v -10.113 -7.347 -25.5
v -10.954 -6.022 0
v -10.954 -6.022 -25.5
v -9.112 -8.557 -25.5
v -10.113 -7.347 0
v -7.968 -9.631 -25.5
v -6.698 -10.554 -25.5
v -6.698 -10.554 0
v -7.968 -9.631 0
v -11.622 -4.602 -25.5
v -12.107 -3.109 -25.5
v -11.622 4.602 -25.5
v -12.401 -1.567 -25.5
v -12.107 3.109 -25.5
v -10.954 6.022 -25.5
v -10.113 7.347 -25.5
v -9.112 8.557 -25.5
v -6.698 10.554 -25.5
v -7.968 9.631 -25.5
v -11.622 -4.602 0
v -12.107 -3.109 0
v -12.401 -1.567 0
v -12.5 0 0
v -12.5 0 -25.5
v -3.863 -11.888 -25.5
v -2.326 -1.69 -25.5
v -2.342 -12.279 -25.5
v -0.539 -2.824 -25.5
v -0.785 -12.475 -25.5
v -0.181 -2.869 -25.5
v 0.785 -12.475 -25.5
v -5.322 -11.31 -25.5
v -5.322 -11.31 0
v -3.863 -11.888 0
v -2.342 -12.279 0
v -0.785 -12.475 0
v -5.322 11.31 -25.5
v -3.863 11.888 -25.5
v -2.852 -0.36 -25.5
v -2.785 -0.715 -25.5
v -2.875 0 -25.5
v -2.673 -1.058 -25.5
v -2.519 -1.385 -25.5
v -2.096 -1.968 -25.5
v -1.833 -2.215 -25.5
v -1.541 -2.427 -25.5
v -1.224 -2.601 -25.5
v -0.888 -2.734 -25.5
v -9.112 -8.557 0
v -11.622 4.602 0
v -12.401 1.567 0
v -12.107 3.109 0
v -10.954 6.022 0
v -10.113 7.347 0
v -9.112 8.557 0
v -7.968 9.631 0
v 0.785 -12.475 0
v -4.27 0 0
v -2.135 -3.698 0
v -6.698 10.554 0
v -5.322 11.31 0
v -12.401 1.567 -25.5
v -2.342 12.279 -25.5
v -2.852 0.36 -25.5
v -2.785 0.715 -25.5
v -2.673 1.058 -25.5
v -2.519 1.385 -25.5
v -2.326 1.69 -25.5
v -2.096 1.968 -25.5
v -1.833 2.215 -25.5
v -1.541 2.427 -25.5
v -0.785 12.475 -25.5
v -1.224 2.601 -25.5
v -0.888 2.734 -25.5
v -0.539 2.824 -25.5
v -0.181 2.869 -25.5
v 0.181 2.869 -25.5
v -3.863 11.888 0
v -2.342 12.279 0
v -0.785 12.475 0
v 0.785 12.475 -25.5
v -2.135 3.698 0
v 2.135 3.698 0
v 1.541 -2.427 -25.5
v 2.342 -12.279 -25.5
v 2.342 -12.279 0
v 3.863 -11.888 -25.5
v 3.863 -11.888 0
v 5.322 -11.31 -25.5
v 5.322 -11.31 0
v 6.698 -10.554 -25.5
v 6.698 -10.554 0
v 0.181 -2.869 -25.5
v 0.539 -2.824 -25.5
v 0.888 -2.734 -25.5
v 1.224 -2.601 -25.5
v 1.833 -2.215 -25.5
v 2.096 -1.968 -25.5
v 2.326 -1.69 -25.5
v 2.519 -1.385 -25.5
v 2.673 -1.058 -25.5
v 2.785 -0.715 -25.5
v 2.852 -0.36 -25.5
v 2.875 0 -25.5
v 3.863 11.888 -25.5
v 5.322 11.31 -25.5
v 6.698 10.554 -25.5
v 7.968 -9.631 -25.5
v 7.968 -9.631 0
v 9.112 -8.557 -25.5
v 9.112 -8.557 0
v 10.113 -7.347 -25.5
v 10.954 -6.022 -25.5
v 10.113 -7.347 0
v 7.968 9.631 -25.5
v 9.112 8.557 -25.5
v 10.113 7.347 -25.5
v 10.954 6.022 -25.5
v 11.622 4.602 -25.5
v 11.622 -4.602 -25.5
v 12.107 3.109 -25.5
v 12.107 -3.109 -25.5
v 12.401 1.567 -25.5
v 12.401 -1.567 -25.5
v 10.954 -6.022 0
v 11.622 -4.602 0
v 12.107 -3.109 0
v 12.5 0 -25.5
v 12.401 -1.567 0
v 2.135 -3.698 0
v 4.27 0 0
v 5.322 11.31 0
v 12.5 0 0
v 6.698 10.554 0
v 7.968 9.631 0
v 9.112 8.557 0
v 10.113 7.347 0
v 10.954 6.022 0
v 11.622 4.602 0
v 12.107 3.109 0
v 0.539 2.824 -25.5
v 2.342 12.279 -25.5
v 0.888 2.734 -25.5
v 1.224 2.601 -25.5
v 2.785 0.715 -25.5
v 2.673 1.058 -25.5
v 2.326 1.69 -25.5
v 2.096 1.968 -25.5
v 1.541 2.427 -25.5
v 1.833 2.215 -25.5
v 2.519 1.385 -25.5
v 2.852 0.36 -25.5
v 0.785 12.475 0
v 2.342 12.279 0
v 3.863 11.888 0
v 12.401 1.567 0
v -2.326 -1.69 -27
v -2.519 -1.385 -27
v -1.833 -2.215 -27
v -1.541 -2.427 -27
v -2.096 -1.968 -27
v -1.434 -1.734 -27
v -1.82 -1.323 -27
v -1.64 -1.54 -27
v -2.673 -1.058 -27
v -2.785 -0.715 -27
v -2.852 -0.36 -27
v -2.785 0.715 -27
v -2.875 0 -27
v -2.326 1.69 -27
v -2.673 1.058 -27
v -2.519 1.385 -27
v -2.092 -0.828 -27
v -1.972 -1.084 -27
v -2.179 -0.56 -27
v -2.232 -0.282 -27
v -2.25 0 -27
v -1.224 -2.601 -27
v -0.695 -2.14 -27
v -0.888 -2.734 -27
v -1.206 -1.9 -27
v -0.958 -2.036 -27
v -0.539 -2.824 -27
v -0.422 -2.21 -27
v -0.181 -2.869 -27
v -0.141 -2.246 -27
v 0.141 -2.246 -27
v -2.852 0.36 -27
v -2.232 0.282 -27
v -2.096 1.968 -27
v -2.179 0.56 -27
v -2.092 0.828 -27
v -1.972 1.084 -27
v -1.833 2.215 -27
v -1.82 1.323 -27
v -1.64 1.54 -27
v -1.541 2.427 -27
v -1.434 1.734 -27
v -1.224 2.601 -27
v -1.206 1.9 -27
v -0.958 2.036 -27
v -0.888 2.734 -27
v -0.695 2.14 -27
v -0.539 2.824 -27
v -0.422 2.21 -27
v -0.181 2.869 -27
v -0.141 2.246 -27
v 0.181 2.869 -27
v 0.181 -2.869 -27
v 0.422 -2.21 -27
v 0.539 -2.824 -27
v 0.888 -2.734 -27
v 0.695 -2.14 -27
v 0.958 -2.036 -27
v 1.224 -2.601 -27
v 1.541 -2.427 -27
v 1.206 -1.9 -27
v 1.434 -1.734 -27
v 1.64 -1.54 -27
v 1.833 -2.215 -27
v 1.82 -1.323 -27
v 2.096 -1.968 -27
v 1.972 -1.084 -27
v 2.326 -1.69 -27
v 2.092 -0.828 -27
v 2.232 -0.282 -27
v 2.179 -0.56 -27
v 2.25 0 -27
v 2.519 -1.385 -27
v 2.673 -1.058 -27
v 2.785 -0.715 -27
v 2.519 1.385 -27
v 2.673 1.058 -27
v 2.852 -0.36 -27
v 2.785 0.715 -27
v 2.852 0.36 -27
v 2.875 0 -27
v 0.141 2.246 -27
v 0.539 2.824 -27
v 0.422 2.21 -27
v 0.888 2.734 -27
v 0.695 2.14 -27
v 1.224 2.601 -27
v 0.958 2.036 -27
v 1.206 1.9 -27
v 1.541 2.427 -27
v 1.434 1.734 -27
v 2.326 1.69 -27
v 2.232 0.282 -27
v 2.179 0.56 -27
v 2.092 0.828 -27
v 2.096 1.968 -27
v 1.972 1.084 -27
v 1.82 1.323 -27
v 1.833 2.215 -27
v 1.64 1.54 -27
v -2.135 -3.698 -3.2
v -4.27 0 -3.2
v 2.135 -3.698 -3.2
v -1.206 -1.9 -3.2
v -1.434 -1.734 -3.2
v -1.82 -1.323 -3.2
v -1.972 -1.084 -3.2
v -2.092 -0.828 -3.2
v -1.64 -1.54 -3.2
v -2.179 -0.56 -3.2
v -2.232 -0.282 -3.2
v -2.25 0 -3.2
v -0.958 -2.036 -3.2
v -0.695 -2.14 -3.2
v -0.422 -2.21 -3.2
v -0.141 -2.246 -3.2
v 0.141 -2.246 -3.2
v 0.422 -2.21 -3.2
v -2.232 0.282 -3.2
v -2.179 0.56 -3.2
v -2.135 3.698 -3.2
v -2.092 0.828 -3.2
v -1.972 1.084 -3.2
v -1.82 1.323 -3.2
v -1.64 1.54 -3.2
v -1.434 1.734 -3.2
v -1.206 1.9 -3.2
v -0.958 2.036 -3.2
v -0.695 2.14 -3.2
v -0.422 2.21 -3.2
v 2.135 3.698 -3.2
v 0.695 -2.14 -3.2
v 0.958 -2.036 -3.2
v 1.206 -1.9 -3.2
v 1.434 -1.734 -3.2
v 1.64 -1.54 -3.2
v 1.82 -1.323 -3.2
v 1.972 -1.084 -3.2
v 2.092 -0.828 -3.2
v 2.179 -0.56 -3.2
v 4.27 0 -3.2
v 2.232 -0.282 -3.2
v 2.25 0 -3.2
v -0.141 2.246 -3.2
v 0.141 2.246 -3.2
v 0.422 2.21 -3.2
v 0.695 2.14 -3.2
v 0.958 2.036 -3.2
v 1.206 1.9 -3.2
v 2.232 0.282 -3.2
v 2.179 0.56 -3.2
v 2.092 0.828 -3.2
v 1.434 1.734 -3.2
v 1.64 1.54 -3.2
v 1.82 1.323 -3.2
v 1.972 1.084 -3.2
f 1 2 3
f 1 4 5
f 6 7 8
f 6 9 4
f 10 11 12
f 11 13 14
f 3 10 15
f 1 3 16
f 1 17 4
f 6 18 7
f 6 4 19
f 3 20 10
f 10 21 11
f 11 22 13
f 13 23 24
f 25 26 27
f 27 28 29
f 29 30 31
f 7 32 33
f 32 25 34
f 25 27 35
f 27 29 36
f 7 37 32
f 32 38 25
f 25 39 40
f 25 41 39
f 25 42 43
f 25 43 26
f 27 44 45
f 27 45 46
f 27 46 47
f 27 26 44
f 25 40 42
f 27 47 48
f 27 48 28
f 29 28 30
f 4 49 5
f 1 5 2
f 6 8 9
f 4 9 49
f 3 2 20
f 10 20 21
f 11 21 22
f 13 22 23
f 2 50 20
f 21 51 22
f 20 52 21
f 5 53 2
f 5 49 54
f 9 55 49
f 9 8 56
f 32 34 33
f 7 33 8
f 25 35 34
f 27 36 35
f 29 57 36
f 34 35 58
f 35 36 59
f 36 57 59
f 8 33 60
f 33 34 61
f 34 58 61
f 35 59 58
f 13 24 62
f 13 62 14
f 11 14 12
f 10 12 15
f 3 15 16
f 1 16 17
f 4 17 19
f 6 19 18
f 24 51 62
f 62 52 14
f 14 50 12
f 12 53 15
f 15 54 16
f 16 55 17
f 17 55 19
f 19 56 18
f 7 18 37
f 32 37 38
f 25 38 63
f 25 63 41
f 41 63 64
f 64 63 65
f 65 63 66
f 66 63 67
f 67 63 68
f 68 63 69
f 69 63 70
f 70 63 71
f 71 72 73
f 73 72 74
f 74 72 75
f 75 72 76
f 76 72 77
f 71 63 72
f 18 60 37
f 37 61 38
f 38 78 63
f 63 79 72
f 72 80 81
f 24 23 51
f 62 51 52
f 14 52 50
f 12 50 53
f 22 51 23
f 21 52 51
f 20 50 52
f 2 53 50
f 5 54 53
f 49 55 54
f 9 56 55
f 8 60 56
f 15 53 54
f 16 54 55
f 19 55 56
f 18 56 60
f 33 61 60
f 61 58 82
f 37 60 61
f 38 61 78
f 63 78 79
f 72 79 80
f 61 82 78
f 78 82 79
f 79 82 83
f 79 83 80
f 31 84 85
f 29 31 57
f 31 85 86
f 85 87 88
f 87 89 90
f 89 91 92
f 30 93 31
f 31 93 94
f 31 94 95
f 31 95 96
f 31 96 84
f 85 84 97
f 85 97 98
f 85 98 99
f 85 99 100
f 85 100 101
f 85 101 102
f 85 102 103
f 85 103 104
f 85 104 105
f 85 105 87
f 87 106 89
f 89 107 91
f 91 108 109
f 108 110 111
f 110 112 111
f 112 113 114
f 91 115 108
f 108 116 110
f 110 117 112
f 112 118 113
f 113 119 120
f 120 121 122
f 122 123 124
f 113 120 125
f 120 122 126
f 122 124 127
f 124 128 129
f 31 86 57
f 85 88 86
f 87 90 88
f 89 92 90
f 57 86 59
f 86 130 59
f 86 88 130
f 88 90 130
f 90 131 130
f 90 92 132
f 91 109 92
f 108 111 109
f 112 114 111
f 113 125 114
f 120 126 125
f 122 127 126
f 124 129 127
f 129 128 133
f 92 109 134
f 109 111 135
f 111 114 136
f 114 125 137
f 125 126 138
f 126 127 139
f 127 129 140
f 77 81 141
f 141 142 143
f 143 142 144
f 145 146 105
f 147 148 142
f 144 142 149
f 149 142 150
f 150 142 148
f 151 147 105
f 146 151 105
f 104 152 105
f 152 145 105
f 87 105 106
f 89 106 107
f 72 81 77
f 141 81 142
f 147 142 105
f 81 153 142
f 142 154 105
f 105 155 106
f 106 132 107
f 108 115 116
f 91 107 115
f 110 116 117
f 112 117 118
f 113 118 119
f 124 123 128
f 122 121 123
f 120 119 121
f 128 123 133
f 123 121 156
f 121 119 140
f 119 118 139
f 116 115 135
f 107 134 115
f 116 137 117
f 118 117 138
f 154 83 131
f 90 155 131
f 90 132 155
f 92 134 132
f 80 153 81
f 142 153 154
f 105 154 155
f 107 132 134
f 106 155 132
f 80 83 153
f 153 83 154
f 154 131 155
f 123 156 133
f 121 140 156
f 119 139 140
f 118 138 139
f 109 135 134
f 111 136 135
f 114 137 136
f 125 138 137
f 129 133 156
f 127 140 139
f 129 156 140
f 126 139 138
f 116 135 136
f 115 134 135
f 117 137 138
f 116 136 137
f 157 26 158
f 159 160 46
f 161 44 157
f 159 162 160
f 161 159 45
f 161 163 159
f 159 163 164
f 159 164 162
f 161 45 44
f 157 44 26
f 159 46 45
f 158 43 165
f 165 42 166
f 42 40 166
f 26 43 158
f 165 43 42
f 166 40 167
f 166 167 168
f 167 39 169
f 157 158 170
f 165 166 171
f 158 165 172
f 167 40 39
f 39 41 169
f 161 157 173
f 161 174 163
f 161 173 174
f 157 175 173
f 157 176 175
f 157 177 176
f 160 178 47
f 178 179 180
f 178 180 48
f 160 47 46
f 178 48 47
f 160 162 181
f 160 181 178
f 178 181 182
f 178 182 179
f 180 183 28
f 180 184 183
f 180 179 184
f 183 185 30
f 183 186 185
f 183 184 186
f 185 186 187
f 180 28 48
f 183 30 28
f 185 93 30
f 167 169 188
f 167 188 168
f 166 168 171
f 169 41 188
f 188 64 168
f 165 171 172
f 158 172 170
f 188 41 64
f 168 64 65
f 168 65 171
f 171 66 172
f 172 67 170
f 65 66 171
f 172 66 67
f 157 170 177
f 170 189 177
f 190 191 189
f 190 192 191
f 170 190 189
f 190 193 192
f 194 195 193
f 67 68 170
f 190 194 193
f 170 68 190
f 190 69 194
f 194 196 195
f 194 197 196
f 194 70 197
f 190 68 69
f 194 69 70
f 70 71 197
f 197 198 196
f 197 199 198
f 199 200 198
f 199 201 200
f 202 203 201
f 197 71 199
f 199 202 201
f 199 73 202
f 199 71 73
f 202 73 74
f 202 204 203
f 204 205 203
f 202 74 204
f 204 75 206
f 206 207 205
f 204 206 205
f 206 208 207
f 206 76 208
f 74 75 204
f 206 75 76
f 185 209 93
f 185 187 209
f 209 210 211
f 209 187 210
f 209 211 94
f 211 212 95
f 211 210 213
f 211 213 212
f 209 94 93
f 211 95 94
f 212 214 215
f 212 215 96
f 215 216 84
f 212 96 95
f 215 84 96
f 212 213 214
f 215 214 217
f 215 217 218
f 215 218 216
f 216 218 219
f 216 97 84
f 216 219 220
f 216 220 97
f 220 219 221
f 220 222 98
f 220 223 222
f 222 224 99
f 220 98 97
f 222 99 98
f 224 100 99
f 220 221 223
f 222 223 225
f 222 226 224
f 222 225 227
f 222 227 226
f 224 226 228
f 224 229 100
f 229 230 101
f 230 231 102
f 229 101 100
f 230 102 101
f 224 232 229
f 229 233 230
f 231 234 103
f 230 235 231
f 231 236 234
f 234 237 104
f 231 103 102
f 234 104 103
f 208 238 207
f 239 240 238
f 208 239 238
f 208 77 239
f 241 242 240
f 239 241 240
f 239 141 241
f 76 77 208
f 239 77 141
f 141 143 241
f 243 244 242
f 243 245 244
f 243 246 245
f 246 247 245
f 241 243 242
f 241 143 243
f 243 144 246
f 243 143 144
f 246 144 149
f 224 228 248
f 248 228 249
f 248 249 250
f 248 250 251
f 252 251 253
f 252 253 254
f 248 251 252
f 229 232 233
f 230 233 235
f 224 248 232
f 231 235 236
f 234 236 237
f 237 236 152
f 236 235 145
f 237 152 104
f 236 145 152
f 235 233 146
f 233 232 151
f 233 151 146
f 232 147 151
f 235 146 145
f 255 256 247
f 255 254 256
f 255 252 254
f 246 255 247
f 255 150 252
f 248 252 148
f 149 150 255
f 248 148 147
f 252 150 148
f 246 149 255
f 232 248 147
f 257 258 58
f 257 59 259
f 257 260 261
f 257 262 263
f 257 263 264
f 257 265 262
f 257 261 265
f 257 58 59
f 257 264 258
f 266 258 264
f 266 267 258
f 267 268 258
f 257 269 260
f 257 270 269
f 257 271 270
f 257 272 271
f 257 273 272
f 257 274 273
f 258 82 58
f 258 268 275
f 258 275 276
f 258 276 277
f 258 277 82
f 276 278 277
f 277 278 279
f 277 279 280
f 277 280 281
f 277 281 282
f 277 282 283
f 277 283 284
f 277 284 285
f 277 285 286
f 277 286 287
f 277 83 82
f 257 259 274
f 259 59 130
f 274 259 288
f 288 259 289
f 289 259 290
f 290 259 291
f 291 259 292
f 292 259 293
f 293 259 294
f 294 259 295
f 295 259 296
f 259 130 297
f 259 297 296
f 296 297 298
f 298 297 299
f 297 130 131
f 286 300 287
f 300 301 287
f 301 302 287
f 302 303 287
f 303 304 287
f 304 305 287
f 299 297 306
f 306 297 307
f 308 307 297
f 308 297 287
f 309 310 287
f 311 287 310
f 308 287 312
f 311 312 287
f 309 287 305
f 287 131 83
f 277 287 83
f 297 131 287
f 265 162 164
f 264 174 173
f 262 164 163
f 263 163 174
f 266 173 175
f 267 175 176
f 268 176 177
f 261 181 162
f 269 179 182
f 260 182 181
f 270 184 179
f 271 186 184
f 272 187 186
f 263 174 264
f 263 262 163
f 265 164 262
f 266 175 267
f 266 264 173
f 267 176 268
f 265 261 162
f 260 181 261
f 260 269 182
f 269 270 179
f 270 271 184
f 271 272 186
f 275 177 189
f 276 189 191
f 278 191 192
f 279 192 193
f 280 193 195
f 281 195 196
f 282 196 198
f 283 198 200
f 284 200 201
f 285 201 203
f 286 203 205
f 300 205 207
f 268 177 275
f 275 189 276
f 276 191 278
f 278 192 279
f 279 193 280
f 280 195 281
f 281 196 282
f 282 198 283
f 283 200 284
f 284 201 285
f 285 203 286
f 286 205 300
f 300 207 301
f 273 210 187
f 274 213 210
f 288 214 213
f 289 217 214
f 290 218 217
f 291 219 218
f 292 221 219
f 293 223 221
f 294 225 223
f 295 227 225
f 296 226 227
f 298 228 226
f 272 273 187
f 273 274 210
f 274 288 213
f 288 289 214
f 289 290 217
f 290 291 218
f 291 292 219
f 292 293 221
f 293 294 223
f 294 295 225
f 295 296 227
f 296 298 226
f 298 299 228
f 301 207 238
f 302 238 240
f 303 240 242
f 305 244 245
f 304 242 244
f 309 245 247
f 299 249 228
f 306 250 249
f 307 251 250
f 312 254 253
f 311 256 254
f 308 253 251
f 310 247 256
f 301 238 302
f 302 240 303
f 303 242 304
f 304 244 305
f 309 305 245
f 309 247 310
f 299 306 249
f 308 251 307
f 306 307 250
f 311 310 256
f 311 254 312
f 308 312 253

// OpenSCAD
$fn = 50;

difference() {
	union() {
		translate(v = [0, 0, -25.5]) {
			cylinder(h = 25.5, r = 12.5);
		}
		#translate(v = [0, 0, -27.0]) {
			cylinder(h = 27, r = 2.875);
		}
	}
	union() {
		translate(v = [0, 0, 0]) {
			rotate(a = [0, 0, 0]) {
				difference() {
					union() {
						translate(v = [0, 0, -3.2]) {
							linear_extrude(height = 3.2) {
								polygon(points = [[4.2698, 0.0], [2.1349000000000005, 3.697755269078796], [-2.134899999999999, 3.6977552690787965], [-4.2698, 5.228996902999369e-16], [-2.134900000000002, -3.6977552690787956], [2.1348999999999974, -3.697755269078798]]);
							}
						}
					}
					union();
				}
			}
		}
		#translate(v = [0, 0, -100.0]) {
			cylinder(h = 200, r = 2.25);
		}
	}
}
